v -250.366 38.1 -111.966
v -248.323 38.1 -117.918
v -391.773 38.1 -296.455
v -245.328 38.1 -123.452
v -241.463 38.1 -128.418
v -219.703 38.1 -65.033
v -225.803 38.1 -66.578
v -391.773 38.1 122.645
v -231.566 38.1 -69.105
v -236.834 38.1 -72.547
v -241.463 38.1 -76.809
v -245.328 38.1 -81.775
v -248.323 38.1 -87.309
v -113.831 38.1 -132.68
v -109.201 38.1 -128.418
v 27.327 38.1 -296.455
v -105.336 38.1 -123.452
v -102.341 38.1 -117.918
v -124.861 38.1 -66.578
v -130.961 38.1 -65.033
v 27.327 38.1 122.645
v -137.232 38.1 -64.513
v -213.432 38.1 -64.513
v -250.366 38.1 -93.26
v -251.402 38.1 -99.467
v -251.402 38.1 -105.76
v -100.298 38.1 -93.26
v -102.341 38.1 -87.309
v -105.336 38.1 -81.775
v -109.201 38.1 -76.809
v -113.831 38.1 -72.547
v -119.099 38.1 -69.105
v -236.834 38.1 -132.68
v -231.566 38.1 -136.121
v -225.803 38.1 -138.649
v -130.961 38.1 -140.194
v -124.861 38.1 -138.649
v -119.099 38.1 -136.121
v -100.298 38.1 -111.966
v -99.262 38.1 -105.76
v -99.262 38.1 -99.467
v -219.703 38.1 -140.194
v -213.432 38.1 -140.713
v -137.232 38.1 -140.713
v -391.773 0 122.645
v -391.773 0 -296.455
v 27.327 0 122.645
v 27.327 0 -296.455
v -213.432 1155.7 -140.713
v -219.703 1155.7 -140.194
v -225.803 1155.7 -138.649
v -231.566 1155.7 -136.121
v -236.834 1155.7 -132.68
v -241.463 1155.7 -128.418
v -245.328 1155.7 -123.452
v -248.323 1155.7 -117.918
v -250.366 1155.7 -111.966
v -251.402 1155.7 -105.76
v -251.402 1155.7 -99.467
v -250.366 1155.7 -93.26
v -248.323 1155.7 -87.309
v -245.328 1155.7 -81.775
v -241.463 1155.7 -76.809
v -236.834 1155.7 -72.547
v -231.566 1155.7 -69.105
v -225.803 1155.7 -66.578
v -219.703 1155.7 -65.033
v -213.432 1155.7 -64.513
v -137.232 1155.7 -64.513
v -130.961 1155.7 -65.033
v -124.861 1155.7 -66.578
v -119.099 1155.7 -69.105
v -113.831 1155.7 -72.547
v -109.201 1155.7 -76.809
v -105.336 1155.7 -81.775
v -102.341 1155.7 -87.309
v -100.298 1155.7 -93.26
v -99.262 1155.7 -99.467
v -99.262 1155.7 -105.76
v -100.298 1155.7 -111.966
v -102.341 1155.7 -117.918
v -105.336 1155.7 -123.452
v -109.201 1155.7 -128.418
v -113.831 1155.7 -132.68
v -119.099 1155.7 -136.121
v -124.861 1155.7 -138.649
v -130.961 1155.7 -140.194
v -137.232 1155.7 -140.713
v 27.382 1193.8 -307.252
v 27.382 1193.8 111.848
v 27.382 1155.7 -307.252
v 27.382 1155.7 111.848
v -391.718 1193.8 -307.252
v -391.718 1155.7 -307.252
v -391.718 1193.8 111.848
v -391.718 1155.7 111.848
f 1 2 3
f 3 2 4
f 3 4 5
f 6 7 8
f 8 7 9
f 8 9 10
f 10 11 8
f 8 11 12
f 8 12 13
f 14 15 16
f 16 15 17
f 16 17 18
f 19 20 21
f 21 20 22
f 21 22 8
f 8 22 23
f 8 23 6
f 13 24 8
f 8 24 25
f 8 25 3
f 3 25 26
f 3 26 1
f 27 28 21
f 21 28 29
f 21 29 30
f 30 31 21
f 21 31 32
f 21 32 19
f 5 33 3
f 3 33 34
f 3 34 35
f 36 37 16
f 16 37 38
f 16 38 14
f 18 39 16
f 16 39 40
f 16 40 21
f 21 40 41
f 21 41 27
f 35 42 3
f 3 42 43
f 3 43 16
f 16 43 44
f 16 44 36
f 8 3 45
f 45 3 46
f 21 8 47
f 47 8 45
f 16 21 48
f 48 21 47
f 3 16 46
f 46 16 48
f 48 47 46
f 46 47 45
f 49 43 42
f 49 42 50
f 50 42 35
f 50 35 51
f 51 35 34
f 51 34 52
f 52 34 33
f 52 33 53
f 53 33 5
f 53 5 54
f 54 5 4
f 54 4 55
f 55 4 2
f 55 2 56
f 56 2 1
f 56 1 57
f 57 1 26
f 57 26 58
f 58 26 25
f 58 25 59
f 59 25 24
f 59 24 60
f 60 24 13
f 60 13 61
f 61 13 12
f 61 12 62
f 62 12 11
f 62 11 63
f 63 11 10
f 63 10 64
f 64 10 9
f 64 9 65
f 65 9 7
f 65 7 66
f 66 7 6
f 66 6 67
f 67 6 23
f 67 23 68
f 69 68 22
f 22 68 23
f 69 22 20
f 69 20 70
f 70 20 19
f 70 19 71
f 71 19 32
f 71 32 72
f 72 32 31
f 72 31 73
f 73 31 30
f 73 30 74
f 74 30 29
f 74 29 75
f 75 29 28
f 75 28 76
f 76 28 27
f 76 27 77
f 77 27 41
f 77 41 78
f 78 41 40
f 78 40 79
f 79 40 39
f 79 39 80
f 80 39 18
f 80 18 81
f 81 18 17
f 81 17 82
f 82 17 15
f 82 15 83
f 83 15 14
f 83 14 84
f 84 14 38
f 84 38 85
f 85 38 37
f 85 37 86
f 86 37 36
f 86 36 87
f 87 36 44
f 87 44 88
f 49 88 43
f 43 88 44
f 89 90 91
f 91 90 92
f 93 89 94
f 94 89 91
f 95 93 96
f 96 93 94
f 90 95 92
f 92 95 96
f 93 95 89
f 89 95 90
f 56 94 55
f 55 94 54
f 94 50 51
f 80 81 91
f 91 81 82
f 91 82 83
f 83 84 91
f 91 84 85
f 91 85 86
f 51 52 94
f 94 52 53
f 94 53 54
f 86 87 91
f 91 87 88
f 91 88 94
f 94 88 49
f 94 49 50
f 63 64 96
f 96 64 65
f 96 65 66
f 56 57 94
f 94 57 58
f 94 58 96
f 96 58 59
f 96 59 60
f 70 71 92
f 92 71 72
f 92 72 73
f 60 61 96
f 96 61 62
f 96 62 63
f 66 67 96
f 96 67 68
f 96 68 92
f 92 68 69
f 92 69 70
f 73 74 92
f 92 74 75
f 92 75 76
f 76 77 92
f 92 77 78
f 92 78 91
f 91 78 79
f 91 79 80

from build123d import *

# Parameters (mm, degrees)
SKETCH1_W           = 419.1
SKETCH1_H           = 419.1
BOSS_EXTRUDE1_DEPTH = 38.1
BOSS_EXTRUDE2_DEPTH = 1117.6
SKETCH6_W           = 419.1
SKETCH6_H           = 419.1
BOSS_EXTRUDE4_DEPTH = 38.1


with BuildPart() as part:
    # Sketch1 → Boss-Extrude1 (new body)
    with BuildSketch(Plane(origin=(0, 0, 0), x_dir=(1, 0, 0), z_dir=(0, 1, 0))):
        with Locations((-182.222860504, 86.904880256)):
            Rectangle(SKETCH1_W, SKETCH1_H)
    extrude(amount=BOSS_EXTRUDE1_DEPTH)

    # Sketch4 → Boss-Extrude2 (add)
    with BuildSketch(Plane(origin=(0, 38.1, 0), x_dir=(1, 0, 0), z_dir=(0, 1, 0))):
        with BuildLine():
            Line((-213.432103513, 140.713298357), (-137.232103513, 140.713298357))
            ThreePointArc((-137.232103513, 140.713298357), (-99.132103513, 102.613298357), (-137.232103513, 64.513298357))
            Line((-137.232103513, 64.513298357), (-213.432103513, 64.513298357))
            ThreePointArc((-213.432103513, 64.513298357), (-251.532103513, 102.613298357), (-213.432103513, 140.713298357))
        make_face()
    extrude(amount=BOSS_EXTRUDE2_DEPTH)

    # Sketch6 → Boss-Extrude4 (add)
    with BuildSketch(Plane(origin=(0, 1155.7, 0), x_dir=(1, 0, 0), z_dir=(0, 1, 0))):
        with Locations((-182.168261088, 97.701559628)):
            Rectangle(SKETCH6_W, SKETCH6_H)
    extrude(amount=BOSS_EXTRUDE4_DEPTH)


solid = part.part
